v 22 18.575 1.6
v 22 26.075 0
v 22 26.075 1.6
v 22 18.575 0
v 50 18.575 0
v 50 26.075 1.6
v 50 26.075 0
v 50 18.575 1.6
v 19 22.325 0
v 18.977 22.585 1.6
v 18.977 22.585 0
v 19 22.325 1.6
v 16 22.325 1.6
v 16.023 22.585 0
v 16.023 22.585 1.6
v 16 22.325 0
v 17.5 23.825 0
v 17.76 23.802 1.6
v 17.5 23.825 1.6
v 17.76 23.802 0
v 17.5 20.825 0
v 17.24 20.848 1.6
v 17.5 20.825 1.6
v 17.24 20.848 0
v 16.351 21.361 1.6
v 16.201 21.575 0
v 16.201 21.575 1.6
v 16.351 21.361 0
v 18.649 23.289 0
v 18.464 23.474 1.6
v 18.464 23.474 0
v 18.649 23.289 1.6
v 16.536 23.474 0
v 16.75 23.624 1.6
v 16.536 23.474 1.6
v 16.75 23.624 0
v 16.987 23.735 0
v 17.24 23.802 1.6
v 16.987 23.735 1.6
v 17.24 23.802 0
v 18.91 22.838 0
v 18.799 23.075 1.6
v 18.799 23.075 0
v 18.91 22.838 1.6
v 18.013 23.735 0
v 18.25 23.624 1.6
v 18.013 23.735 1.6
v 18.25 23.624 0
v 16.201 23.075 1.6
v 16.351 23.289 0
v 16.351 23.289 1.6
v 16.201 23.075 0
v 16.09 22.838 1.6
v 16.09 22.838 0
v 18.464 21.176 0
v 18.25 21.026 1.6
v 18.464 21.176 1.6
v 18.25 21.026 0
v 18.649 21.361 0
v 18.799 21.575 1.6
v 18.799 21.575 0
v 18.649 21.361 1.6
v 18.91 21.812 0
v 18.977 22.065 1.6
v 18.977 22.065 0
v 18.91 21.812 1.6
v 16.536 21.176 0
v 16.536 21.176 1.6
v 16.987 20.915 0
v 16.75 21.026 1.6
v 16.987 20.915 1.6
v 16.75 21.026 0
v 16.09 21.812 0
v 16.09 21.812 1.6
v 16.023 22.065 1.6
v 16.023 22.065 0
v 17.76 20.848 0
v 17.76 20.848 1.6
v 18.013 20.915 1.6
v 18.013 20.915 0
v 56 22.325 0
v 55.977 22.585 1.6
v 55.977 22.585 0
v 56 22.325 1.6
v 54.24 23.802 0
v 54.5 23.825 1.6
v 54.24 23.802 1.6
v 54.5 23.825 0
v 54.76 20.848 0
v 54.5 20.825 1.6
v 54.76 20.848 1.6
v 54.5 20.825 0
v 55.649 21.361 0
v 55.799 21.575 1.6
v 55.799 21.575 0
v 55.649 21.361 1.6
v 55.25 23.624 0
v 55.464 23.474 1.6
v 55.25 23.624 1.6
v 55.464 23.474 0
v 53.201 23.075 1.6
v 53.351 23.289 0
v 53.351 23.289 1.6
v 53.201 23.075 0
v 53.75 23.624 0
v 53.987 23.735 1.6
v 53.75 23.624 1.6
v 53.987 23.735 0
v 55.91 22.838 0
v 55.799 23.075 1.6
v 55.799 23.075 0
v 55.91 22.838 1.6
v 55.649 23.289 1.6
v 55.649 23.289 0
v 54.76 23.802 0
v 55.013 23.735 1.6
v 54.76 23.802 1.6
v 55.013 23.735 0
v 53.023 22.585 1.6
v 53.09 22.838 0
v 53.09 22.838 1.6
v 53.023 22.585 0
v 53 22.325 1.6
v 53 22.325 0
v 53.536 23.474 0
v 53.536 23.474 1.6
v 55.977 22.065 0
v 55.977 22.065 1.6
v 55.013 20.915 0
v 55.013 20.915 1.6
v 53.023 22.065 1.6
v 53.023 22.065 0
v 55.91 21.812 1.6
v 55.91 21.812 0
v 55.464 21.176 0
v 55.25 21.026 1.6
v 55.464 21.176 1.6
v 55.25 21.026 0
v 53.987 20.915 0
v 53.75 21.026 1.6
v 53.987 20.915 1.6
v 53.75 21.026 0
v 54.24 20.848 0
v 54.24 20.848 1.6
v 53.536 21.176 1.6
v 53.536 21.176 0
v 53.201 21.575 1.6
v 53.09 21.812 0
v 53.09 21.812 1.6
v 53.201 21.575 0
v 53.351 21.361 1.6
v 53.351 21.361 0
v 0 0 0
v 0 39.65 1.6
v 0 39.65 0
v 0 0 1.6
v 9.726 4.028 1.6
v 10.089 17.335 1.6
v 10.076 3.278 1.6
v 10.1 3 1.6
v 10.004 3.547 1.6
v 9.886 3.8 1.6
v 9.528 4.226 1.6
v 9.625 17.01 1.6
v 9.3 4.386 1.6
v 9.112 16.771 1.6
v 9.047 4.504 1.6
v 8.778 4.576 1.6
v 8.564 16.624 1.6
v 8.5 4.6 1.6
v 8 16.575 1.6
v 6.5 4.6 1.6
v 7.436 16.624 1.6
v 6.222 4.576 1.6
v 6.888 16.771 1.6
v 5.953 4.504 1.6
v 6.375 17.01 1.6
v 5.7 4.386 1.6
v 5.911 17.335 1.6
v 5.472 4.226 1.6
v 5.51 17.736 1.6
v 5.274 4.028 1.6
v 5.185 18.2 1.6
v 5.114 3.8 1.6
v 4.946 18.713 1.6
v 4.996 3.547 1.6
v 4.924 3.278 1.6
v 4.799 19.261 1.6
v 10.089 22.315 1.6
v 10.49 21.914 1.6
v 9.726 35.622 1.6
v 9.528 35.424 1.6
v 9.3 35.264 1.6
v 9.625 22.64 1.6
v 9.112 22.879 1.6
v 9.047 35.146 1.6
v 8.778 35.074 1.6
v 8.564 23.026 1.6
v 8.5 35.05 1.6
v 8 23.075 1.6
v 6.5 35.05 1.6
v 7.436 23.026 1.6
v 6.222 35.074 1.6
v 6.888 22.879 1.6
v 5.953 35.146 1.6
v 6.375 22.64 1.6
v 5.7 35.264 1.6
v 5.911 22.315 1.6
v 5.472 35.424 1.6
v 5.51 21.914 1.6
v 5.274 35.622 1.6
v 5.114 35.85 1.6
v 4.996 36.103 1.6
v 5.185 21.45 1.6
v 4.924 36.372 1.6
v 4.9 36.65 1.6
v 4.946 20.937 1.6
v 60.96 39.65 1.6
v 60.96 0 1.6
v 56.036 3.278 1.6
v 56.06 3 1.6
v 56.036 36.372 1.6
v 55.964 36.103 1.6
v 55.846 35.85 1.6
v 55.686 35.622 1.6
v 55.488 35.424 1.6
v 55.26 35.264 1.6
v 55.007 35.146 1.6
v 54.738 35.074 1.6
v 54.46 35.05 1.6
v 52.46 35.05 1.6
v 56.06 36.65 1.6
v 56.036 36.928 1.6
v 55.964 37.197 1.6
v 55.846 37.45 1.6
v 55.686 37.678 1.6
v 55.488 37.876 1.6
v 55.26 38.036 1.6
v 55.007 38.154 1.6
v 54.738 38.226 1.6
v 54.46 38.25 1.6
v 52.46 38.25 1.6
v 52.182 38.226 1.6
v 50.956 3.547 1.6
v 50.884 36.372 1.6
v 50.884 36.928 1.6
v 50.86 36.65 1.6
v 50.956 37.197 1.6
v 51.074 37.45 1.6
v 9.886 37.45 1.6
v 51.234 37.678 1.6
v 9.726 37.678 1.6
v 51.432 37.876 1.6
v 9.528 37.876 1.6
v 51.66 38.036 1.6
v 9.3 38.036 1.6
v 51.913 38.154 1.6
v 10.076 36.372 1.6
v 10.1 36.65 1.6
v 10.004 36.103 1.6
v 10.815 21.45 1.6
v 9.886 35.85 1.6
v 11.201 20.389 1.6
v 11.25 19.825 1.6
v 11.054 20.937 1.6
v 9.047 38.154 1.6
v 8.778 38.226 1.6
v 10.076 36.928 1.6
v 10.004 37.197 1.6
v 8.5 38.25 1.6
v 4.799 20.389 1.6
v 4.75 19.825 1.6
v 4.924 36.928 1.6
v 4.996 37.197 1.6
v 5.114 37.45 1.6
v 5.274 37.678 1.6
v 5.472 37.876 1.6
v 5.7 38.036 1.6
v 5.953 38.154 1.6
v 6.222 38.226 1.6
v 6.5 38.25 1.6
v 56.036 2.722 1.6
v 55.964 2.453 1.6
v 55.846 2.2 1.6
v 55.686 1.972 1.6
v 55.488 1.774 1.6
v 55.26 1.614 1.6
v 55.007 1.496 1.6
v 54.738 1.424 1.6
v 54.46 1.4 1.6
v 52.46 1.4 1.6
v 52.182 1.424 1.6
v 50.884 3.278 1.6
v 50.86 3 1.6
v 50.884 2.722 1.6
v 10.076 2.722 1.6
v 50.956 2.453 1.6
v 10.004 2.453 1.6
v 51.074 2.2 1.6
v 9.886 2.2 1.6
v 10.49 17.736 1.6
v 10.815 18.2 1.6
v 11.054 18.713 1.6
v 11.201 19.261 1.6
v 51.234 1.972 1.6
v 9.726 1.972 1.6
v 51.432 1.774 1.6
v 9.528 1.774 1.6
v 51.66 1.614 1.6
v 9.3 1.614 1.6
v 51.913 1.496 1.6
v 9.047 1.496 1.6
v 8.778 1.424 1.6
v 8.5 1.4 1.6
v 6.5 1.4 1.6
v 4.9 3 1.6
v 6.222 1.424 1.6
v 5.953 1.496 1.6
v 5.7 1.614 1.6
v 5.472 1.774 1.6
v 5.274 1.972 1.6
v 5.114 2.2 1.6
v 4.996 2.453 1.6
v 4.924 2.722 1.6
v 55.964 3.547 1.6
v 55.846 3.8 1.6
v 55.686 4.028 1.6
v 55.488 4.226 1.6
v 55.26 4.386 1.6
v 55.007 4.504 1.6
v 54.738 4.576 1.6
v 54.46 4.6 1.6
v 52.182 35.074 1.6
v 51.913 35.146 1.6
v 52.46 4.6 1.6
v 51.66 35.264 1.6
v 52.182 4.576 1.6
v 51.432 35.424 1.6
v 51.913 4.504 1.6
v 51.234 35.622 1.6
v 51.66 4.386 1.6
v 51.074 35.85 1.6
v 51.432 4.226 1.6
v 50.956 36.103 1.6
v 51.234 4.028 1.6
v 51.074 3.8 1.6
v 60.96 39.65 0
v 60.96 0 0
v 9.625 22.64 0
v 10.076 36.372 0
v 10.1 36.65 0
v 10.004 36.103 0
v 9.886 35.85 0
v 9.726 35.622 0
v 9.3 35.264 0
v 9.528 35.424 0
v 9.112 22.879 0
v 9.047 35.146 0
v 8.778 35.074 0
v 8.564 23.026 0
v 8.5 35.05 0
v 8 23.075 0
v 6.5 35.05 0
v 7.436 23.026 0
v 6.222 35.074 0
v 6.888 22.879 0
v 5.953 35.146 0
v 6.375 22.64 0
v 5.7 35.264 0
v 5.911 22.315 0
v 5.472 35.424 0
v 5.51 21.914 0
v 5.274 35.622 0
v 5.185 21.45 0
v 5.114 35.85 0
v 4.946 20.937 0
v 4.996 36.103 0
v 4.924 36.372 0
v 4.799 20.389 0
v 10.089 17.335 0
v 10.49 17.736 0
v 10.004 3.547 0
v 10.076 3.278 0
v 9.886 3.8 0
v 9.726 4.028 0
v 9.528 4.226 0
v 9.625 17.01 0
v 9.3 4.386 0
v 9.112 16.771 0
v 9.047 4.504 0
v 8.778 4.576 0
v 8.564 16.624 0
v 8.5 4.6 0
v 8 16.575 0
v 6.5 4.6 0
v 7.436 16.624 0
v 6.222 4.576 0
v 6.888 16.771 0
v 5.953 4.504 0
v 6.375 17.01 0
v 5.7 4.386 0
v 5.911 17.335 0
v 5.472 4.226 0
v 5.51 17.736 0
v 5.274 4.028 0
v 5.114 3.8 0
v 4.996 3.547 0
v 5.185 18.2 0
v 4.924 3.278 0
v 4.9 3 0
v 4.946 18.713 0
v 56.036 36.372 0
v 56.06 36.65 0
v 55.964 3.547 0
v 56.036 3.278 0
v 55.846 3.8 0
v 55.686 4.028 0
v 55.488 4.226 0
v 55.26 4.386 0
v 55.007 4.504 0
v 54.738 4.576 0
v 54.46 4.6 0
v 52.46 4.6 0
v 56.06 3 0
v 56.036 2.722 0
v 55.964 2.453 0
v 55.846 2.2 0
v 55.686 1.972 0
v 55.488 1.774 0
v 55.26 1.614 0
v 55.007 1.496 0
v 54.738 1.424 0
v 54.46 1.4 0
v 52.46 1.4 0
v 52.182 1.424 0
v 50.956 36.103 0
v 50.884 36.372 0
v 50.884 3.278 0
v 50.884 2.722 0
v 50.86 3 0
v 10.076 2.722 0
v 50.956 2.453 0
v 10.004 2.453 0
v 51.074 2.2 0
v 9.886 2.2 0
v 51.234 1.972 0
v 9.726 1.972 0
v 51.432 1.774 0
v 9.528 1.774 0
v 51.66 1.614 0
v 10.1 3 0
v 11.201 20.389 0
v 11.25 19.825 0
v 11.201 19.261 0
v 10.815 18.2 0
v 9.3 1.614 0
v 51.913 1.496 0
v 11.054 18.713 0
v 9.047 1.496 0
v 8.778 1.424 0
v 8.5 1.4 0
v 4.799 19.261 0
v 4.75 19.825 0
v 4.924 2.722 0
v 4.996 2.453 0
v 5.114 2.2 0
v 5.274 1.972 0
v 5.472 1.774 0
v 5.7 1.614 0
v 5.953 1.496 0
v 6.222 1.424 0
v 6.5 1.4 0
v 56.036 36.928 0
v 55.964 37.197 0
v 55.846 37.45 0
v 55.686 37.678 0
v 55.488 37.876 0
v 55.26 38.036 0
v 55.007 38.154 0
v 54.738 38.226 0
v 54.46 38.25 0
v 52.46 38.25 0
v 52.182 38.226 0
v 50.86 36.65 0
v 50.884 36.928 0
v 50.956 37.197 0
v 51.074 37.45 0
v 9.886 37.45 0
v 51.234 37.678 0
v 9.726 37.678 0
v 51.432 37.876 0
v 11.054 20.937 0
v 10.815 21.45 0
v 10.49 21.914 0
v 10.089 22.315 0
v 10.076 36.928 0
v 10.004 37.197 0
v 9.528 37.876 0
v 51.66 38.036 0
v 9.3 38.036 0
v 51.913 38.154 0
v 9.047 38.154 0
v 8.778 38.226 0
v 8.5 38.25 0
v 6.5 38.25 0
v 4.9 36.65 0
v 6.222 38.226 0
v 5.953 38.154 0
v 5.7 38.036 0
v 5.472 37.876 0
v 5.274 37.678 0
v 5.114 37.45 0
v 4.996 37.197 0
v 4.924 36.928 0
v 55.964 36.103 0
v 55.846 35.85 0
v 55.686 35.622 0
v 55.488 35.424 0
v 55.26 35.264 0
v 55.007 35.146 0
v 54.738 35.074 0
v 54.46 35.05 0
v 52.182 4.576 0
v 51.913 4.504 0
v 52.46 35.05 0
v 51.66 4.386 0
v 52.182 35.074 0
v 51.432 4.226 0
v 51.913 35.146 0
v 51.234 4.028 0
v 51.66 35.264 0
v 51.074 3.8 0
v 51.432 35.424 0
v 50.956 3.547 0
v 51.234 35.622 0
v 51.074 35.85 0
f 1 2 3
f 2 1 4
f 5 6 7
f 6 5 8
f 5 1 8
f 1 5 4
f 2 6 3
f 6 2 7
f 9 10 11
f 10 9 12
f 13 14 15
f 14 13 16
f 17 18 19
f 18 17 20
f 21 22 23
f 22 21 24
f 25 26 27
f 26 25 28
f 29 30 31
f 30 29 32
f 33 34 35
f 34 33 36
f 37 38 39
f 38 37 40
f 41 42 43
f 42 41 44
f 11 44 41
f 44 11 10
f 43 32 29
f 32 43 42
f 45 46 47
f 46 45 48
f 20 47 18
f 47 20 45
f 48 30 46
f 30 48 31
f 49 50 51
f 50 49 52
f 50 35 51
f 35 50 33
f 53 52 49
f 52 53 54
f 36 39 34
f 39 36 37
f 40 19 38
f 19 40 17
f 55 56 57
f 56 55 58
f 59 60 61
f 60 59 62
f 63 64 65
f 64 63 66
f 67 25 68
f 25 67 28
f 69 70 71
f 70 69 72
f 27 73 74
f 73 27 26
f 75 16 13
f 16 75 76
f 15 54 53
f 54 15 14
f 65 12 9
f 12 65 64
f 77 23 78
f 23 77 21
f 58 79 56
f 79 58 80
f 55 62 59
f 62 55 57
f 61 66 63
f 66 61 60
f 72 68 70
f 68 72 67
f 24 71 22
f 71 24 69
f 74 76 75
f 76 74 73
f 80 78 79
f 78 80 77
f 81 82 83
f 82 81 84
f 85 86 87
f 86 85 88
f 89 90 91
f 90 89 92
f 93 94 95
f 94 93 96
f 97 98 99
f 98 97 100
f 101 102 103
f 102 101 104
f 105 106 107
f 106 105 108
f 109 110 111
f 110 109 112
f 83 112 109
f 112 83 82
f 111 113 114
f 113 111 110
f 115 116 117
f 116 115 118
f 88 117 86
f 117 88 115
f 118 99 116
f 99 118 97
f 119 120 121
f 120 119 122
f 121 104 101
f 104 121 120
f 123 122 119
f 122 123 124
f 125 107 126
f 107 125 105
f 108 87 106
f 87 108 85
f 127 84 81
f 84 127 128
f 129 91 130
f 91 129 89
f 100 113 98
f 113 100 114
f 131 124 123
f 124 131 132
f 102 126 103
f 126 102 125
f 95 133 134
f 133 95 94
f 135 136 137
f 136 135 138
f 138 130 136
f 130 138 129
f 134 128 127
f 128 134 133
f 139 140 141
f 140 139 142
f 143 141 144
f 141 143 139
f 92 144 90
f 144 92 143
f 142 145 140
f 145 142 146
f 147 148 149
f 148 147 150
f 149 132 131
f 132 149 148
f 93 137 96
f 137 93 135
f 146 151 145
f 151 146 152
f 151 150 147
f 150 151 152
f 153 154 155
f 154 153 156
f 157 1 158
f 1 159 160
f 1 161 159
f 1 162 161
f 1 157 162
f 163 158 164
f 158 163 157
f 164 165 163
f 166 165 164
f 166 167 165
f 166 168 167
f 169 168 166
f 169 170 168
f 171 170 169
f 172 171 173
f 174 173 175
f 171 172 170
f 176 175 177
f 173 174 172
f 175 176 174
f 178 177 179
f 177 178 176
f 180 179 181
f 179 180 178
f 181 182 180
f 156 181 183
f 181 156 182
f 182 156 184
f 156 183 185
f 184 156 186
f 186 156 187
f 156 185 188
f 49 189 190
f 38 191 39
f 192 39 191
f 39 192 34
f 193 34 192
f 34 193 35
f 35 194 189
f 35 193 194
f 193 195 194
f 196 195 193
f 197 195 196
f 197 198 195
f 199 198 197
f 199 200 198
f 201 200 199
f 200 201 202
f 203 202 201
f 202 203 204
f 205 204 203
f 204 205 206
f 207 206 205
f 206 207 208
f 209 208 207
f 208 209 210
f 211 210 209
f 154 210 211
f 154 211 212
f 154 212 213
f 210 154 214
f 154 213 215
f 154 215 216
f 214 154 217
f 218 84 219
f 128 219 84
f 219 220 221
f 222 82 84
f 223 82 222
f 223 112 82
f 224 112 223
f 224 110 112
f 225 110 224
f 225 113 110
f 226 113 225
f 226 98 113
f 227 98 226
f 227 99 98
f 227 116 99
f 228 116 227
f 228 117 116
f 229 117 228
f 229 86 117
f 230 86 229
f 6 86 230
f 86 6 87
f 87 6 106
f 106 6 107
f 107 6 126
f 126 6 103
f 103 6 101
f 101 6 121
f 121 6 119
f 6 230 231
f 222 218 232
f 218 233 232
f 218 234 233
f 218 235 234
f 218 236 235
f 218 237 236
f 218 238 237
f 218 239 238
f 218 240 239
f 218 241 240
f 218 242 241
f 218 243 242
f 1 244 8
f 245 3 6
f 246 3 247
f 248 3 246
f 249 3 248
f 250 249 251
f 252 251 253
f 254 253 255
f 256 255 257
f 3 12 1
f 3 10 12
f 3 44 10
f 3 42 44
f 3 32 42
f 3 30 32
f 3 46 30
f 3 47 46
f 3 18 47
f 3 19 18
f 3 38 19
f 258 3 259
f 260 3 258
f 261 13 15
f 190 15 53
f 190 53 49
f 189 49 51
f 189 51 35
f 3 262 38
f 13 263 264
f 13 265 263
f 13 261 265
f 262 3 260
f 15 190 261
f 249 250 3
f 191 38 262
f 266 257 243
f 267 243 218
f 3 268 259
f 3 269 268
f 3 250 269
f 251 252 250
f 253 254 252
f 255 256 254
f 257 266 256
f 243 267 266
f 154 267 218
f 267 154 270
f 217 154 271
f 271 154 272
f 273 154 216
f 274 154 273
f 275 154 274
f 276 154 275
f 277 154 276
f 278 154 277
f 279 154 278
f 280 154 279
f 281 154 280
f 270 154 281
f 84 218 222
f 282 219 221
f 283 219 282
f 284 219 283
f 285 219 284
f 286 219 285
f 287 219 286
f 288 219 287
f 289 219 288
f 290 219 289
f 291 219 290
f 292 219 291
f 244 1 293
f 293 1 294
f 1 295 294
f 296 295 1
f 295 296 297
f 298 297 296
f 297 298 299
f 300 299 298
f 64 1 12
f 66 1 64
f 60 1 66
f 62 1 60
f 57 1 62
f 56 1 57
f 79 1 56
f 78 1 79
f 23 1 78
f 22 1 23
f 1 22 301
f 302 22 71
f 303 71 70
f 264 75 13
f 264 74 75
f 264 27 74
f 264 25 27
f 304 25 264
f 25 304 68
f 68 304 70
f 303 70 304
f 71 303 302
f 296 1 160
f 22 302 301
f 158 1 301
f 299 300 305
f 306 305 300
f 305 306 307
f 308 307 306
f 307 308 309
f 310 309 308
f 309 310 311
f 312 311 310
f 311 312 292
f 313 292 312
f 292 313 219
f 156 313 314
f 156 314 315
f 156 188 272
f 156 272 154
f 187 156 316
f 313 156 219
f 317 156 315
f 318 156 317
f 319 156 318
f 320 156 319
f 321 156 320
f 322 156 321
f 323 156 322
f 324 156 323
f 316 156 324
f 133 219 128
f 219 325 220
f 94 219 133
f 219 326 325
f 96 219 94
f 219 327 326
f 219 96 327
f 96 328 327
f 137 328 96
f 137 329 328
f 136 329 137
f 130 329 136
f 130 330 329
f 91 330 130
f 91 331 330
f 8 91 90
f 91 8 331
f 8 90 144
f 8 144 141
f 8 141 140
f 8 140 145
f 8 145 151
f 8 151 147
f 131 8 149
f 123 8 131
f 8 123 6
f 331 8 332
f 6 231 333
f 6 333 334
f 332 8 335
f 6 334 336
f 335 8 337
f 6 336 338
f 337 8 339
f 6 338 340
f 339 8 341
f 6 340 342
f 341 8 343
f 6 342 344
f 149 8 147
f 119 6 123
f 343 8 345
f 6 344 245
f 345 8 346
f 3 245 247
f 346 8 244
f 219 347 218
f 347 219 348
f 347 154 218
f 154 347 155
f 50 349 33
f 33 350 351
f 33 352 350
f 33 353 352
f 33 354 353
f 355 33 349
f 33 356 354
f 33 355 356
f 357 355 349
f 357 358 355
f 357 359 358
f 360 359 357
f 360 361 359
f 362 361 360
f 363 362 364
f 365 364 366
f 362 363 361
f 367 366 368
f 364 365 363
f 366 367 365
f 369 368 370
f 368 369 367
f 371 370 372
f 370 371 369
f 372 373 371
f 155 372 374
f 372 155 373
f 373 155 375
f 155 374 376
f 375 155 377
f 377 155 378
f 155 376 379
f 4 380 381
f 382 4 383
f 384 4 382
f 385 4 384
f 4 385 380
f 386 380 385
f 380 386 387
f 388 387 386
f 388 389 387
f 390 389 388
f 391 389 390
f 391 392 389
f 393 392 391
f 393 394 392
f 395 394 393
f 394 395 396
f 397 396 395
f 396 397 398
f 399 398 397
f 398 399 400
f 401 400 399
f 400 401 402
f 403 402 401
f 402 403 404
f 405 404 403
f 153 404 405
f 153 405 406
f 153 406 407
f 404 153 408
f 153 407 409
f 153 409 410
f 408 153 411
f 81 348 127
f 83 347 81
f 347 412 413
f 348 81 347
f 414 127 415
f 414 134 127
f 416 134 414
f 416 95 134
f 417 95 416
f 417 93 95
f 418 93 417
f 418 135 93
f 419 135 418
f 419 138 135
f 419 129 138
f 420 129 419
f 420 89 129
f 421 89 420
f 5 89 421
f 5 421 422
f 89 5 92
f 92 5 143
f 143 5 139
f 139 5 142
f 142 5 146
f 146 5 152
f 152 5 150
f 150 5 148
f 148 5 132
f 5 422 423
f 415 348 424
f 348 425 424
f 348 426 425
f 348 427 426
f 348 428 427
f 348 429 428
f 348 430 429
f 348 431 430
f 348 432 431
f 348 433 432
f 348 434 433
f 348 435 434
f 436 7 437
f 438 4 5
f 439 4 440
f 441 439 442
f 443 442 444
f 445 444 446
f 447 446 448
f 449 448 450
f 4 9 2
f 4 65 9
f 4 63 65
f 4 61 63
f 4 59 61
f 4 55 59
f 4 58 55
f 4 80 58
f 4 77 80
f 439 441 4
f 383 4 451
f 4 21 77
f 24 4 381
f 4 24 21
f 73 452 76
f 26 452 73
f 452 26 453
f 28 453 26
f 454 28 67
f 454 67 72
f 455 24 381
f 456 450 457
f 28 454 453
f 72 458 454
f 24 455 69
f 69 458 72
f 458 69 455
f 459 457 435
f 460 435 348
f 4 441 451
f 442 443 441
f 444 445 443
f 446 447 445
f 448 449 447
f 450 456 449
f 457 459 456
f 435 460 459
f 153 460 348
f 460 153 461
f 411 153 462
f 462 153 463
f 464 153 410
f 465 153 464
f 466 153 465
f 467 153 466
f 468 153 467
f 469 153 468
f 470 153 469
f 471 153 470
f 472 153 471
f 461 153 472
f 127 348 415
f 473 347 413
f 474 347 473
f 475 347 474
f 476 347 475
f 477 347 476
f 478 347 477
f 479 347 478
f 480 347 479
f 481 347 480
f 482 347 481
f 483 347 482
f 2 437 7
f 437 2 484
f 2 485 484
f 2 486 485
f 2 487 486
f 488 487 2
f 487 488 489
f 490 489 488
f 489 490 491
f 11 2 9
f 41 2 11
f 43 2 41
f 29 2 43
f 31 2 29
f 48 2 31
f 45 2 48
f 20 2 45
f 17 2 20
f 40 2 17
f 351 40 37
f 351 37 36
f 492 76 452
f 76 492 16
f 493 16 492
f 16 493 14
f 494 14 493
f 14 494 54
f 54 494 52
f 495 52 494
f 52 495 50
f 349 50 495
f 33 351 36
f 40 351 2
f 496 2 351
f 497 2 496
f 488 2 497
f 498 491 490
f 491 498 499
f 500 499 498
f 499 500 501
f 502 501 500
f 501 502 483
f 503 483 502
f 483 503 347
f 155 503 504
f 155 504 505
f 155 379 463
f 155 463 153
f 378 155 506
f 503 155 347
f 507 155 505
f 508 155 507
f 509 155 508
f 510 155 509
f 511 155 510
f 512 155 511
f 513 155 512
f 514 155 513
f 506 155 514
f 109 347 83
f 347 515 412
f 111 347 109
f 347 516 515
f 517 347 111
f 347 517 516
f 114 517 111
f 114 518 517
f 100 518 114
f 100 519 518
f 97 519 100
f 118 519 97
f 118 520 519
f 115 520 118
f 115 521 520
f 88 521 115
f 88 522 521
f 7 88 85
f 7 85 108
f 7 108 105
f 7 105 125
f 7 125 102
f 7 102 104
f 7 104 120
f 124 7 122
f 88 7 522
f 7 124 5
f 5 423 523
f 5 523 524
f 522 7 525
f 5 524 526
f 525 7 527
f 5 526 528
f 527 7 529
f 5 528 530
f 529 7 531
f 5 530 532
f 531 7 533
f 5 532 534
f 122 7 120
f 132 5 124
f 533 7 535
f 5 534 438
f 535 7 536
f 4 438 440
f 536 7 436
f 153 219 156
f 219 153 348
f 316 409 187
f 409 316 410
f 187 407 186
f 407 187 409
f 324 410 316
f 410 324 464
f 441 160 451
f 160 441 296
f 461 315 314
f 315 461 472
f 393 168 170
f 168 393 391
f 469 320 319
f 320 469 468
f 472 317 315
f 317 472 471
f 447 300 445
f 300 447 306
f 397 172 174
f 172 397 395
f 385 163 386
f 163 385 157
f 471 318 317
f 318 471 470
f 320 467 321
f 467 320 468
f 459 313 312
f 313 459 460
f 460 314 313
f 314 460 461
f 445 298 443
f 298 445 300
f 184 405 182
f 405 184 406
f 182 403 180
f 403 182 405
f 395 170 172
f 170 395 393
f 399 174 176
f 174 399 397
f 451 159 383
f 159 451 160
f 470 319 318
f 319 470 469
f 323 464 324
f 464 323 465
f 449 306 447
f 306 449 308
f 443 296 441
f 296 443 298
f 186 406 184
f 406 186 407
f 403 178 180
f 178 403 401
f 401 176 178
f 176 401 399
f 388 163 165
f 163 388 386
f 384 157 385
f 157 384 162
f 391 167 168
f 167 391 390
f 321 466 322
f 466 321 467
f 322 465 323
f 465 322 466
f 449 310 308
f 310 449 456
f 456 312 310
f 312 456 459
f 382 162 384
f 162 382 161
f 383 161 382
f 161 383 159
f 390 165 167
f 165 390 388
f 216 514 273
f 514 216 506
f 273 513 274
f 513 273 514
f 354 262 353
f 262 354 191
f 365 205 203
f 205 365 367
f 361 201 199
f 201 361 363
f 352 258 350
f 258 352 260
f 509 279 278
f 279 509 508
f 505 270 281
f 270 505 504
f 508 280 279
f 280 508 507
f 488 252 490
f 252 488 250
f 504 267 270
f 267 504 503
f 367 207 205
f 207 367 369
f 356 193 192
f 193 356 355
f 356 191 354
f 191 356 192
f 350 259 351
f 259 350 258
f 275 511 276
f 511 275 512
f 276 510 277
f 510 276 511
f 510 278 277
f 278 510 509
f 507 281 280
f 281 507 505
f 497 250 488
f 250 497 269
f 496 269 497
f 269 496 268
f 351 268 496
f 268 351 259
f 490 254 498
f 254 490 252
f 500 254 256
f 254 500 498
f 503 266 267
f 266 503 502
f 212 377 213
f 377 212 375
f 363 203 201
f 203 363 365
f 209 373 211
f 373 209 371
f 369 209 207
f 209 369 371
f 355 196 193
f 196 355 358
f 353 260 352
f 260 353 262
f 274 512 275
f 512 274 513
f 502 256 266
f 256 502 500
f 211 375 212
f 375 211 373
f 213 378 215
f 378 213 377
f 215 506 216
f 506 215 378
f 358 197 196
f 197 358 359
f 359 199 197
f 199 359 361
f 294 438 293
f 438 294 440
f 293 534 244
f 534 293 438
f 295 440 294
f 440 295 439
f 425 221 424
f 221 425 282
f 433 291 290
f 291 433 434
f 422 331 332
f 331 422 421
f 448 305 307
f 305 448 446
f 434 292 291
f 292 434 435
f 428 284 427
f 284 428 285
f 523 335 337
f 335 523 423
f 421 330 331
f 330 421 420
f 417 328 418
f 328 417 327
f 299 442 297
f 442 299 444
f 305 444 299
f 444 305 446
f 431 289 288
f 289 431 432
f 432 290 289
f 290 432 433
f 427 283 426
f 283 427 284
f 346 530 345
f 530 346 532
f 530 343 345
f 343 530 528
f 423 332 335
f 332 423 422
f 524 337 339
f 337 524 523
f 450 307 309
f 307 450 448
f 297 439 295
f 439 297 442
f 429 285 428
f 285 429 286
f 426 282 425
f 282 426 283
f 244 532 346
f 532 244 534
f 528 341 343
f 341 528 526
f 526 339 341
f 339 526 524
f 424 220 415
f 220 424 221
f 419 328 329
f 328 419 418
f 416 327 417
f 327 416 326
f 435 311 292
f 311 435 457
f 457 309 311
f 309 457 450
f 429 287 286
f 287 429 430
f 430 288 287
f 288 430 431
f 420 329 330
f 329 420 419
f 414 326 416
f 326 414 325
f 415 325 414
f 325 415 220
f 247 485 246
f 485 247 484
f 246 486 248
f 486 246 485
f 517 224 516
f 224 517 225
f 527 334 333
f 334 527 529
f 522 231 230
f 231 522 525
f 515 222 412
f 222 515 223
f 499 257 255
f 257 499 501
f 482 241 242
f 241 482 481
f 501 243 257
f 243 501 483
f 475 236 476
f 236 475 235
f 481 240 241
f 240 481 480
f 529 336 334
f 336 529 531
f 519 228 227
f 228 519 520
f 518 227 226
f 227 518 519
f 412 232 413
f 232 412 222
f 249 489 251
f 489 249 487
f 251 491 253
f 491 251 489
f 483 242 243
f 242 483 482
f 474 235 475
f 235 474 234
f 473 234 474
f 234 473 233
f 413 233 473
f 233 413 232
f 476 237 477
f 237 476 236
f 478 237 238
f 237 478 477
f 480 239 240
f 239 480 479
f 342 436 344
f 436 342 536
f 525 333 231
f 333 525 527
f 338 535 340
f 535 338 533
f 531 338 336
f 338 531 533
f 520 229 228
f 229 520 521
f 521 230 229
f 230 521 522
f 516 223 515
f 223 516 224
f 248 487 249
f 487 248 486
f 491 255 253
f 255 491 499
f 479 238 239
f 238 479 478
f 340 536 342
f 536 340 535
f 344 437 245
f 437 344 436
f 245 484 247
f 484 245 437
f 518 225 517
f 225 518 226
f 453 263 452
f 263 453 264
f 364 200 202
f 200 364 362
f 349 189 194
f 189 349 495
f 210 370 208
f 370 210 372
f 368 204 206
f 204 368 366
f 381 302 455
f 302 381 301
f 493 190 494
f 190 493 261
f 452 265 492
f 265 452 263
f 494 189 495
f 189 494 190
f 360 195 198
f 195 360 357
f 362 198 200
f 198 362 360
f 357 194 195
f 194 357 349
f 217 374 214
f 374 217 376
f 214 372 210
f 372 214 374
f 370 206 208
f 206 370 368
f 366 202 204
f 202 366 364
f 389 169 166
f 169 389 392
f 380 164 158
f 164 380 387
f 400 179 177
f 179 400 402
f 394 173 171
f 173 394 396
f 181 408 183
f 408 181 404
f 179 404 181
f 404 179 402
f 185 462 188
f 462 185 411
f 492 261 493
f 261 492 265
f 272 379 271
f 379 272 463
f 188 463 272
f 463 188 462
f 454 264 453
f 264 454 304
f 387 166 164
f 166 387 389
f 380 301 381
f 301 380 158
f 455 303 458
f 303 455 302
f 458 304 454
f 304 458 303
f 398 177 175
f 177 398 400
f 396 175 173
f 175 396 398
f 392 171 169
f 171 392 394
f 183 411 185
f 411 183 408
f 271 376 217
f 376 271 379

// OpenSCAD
// file: ../MODULES/roundedcube.scad
// Original source: https://danielupshaw.com/openscad-rounded-corners/

// use this for working
$fs = 0.2;
// use the for rendering
// $fs = 0.02;

module roundedcube(size = [1, 1, 1], center = false, radius = 0.5, apply_to = "all") {
	// If single value, convert to [x, y, z] vector
	size = (size[0] == undef) ? [size, size, size] : size;

	translate_min = radius;
	translate_xmax = size[0] - radius;
	translate_ymax = size[1] - radius;
	translate_zmax = size[2] - radius;

	diameter = radius * 2;

	module build_point(type = "sphere", rotate = [0, 0, 0]) {
		if (type == "sphere") {
			sphere(r = radius);
		} else if (type == "cylinder") {
			rotate(a = rotate)
			cylinder(h = diameter, r = radius, center = true);
		}
	}

	obj_translate = (center == false) ?
		[0, 0, 0] : [
			-(size[0] / 2),
			-(size[1] / 2),
			-(size[2] / 2)
		];

	translate(v = obj_translate) {
		hull() {
			for (translate_x = [translate_min, translate_xmax]) {
				x_at = (translate_x == translate_min) ? "min" : "max";
				for (translate_y = [translate_min, translate_ymax]) {
					y_at = (translate_y == translate_min) ? "min" : "max";
					for (translate_z = [translate_min, translate_zmax]) {
						z_at = (translate_z == translate_min) ? "min" : "max";

						translate(v = [translate_x, translate_y, translate_z])
						if (
							(apply_to == "all") ||
							(apply_to == "xmin" && x_at == "min") || (apply_to == "xmax" && x_at == "max") ||
							(apply_to == "ymin" && y_at == "min") || (apply_to == "ymax" && y_at == "max") ||
							(apply_to == "zmin" && z_at == "min") || (apply_to == "zmax" && z_at == "max")
						) {
							build_point("sphere");
						} else {
							rotate = 
								(apply_to == "xmin" || apply_to == "xmax" || apply_to == "x") ? [0, 90, 0] : (
								(apply_to == "ymin" || apply_to == "ymax" || apply_to == "y") ? [90, 90, 0] :
								[0, 0, 0]
							);
							build_point("cylinder", rotate);
						}
					}
				}
			}
		}
	}
}

module shull_cube(size = [1, 1, 1], center = false, radius = 0, apply_to = "all") {
    if (radius == 0) {
        cube(size, center);
    } else {
        roundedcube(size, center, radius, apply_to);
    }
}
// main file
use <../MODULES/roundedcube.scad>;

_DELTA = 0.01;

ONE_HP = 0.2*25.4;
ONE_U  = 39.65;
// approximately equal to a standard PCB thickness
THICKNESS = 1.6;
MODULE_WIDTH = 12*ONE_HP;

// the main facade body
module main() {
    cube([MODULE_WIDTH, ONE_U, THICKNESS]);
}

module mounting_hole(x_offset=0, y_offset=0) {
    $fn = 36;
    MOUNTING_HOLE_DIAMETER = 3.2;
    translate([x_offset, y_offset, THICKNESS/2])
        hull() {
            translate([-1, 0, 0])
                cylinder(THICKNESS+_DELTA, MOUNTING_HOLE_DIAMETER/2, MOUNTING_HOLE_DIAMETER/2, center=true);
            translate([1, 0, 0])
                cylinder(THICKNESS+_DELTA, MOUNTING_HOLE_DIAMETER/2, MOUNTING_HOLE_DIAMETER/2, center=true);
        }
}

// a hole for a jack, pass in the position of the center of the jack
module jack(x_offset=0, y_offset=0) {
    $fn = 36;
    JACK_DIAMETER = 6.5;
    translate([x_offset, y_offset, THICKNESS/2])
        cylinder(THICKNESS+_DELTA, JACK_DIAMETER/2, JACK_DIAMETER/2, center=true);
}

JACK_X_START   = 10;
JACK_X_SPACING = 15.5956;
JACK_Y_SPACING = 0.45*25.4;

CV1_X = JACK_X_START;
CV1_Y = ONE_U/2;

module sharp_sensor(x_offset, y_offset) {
    $fn = 36;
    width = 28;
    height = 7.5;
    hole_spacing = 37;
    hole_diameter = 3;
    translate([x_offset, y_offset, THICKNESS/2]) {
        cube([width, height, THICKNESS+_DELTA], center=true);
        translate([-hole_spacing/2, 0, 0])
            cylinder(THICKNESS+_DELTA, hole_diameter/2, hole_diameter/2, center=true);
        translate([hole_spacing/2, 0, 0])
            cylinder(THICKNESS+_DELTA, hole_diameter/2, hole_diameter/2, center=true);
    }
}

difference() {
    main();
    // These should work for any module
    mounting_hole(7.5, 3);
    mounting_hole(7.5, ONE_U-3);
    mounting_hole(MODULE_WIDTH-7.5, 3);
    mounting_hole(MODULE_WIDTH-7.5, ONE_U-3);
    jack(8, ONE_U/2);
    sharp_sensor(36, ONE_U/2 + 2.5);
}
